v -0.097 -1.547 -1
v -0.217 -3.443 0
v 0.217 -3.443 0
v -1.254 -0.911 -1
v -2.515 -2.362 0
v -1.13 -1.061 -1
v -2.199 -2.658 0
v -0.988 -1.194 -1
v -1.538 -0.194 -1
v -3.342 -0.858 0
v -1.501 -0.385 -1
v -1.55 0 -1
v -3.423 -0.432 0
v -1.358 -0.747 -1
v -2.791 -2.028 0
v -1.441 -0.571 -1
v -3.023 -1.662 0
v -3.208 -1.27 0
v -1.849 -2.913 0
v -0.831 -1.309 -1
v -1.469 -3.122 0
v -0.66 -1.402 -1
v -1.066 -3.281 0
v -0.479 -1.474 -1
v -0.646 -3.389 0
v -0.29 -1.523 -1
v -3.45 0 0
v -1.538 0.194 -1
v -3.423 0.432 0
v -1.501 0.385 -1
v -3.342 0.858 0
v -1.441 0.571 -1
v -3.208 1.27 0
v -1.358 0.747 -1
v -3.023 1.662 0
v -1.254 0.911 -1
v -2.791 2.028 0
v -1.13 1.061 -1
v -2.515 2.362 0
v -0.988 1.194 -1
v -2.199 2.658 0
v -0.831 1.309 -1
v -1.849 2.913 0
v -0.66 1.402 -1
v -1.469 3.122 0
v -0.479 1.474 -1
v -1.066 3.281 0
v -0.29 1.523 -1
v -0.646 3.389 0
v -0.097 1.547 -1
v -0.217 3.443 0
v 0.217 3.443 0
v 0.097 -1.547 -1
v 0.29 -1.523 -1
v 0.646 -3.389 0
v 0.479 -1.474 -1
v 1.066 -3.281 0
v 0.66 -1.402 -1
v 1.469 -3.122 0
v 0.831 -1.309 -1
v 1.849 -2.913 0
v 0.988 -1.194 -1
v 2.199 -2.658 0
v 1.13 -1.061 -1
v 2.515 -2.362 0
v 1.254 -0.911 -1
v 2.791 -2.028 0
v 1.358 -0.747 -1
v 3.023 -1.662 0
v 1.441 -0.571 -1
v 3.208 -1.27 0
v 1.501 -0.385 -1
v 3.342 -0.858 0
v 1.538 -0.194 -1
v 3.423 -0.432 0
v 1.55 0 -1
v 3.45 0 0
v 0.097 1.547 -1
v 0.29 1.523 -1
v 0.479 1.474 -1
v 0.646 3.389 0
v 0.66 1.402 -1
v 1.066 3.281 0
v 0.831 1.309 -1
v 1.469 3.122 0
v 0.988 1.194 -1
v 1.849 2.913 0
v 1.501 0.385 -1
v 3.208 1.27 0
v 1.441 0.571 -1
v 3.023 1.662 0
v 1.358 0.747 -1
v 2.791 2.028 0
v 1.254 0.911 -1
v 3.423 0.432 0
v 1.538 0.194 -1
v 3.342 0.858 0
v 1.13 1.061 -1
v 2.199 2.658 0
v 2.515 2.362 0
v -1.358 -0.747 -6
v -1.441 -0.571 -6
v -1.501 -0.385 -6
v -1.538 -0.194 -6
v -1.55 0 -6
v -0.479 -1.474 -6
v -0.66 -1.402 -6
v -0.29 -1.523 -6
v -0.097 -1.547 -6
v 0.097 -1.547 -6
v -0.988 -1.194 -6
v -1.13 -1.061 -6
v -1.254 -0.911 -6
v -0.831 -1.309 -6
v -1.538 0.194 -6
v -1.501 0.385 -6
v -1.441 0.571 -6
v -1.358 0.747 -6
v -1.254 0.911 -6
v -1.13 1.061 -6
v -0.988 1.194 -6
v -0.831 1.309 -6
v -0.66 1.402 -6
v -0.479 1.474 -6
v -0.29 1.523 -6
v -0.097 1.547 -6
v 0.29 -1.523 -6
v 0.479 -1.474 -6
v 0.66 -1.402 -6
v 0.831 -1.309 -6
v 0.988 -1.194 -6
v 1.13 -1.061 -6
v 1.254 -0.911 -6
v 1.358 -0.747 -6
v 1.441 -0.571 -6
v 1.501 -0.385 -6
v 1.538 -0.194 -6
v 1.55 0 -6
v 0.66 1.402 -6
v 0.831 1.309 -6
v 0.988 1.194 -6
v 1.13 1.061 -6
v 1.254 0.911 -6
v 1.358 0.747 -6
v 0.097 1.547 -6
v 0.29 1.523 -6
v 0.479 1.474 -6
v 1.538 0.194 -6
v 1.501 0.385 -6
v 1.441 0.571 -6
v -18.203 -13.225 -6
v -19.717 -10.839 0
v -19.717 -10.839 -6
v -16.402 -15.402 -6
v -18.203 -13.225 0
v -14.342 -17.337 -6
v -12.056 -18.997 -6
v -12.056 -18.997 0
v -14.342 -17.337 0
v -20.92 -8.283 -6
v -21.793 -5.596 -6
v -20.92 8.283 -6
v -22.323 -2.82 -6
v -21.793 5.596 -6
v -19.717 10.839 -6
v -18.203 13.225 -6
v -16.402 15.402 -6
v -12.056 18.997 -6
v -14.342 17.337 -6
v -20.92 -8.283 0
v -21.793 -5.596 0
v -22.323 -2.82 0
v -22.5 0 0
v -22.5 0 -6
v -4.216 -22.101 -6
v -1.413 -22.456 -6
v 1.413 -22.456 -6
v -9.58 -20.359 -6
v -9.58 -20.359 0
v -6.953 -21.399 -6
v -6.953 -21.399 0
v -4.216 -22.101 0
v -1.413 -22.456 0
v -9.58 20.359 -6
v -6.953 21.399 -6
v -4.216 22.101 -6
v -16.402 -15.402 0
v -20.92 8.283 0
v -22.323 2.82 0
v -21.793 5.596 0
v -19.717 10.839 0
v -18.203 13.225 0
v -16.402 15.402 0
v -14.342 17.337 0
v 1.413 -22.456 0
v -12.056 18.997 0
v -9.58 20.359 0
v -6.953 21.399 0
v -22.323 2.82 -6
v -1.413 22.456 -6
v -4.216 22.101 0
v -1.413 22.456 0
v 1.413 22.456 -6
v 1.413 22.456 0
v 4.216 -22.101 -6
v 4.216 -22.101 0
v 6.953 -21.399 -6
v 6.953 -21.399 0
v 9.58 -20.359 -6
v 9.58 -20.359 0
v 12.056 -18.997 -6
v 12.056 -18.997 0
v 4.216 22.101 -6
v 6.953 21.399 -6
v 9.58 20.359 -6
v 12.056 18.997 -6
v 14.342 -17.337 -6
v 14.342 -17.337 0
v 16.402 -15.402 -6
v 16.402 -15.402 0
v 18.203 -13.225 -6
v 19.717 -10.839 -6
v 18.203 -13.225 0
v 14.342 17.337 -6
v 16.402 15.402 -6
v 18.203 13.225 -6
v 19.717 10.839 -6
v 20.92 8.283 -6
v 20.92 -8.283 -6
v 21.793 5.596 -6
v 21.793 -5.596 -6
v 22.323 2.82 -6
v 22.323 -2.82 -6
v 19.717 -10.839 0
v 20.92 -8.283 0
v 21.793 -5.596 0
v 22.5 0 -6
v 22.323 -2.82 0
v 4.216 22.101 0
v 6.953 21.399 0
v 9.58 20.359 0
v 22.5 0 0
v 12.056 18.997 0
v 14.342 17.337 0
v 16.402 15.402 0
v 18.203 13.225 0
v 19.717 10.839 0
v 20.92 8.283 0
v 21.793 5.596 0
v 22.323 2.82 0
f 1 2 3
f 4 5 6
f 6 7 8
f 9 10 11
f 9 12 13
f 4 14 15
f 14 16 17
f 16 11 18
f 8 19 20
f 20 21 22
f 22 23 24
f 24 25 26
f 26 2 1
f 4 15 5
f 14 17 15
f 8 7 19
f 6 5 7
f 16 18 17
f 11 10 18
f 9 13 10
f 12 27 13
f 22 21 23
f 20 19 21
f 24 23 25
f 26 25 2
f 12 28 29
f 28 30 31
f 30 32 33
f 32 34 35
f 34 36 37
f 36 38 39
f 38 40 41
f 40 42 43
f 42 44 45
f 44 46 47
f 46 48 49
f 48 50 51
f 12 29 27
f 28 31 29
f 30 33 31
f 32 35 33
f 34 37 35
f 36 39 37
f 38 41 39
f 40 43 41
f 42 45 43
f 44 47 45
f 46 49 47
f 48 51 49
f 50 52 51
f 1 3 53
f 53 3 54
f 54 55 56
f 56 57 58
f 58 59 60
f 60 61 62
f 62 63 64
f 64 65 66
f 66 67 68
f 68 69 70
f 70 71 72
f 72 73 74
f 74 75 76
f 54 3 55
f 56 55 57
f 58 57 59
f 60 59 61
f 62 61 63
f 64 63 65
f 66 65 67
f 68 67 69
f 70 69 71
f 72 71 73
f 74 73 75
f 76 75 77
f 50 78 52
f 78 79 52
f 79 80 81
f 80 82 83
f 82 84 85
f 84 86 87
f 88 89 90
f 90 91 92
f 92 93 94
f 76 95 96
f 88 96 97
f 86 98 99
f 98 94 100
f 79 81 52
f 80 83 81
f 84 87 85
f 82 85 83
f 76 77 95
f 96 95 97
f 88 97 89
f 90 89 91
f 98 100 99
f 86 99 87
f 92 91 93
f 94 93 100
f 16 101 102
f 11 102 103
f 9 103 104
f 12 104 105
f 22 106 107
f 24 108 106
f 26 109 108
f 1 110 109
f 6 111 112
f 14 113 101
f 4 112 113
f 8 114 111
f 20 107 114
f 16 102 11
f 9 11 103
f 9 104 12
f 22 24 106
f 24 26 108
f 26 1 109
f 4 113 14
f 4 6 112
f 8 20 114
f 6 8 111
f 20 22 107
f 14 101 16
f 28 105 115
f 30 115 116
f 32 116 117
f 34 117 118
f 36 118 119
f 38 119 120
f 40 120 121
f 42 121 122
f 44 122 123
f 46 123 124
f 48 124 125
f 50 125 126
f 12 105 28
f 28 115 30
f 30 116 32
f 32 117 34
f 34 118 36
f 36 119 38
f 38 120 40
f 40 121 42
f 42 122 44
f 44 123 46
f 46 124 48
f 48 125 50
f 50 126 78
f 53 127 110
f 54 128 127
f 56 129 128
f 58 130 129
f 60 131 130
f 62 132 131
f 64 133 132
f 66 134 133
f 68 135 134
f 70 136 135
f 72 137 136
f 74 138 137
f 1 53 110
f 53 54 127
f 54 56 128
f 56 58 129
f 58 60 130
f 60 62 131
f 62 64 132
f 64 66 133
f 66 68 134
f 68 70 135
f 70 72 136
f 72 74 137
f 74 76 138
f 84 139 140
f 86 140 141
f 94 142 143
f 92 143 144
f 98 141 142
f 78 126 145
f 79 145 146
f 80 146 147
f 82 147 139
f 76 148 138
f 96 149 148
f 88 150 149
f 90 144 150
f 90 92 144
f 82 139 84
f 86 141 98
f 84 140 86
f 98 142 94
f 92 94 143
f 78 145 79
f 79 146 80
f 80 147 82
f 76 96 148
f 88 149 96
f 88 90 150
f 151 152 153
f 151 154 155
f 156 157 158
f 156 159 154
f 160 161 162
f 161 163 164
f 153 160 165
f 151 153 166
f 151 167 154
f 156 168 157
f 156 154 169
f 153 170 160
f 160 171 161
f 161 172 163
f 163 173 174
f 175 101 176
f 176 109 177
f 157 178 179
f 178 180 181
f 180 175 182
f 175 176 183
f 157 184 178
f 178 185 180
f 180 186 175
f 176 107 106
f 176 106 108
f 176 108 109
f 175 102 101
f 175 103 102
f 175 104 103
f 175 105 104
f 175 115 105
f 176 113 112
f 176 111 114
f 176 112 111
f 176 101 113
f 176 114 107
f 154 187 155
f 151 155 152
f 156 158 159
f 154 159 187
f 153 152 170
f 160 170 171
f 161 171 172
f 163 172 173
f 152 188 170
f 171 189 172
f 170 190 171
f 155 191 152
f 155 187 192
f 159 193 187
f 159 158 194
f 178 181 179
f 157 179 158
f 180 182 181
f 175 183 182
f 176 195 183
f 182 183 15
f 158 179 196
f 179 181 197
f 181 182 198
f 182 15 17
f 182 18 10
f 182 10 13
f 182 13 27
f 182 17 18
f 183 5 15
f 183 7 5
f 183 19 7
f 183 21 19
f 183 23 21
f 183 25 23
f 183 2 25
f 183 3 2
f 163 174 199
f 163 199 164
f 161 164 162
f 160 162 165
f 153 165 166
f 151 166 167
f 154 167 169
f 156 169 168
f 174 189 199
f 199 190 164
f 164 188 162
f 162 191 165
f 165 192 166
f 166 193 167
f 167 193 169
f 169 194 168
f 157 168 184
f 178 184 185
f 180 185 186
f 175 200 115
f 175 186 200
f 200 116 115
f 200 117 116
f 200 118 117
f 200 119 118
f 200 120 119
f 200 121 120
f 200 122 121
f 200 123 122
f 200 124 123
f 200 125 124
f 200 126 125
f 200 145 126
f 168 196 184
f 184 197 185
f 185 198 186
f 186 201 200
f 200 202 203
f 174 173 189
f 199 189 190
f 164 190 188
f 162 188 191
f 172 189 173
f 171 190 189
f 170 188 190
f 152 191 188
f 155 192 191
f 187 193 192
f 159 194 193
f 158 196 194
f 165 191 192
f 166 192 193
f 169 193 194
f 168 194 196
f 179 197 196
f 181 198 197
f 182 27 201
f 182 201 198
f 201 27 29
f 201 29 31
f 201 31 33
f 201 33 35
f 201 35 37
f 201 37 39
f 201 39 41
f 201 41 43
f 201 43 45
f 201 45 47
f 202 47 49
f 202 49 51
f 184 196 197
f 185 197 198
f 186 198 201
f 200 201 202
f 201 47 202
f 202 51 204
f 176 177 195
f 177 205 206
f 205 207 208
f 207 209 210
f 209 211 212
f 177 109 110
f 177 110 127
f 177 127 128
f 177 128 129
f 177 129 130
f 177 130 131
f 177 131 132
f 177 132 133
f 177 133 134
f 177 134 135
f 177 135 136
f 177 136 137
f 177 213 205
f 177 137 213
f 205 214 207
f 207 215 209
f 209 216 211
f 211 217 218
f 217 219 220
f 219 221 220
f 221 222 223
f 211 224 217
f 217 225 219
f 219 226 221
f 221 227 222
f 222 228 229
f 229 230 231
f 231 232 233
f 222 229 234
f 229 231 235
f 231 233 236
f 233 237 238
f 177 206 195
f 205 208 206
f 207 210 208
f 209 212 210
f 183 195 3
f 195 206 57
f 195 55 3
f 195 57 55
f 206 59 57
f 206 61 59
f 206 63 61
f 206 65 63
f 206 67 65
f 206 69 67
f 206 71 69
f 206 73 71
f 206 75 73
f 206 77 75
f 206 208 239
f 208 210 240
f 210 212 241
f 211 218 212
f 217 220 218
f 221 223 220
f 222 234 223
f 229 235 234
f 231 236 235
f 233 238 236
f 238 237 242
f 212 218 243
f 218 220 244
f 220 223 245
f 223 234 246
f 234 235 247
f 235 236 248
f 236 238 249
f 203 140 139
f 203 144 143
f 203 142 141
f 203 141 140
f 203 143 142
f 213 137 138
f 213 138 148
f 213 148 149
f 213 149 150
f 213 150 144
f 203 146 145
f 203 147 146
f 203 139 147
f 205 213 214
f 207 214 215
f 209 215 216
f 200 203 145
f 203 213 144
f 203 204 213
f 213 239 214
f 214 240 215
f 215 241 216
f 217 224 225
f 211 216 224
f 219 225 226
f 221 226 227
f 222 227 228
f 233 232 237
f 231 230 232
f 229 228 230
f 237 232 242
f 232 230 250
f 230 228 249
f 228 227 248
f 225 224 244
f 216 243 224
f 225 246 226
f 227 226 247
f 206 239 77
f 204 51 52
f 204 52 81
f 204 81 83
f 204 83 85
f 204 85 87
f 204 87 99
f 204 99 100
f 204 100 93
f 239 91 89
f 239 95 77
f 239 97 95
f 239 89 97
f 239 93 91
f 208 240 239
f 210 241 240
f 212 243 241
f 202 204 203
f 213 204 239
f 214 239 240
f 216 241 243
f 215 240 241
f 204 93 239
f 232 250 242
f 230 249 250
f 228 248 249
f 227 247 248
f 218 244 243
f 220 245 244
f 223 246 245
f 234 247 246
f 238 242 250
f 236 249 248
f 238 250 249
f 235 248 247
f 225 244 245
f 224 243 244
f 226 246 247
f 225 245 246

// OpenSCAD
$fn = 50;

difference() {
	union() {
		translate(v = [0, 0, -6.0]) {
			cylinder(h = 6, r = 22.5);
		}
	}
	union() {
		translate(v = [0, 0, 0]) {
			rotate(a = [0, 0, 0]) {
				difference() {
					union() {
						translate(v = [0, 0, -9.0]) {
							cylinder(h = 9, r = 1.25);
						}
						translate(v = [0, 0, -1.0]) {
							cylinder(h = 1.0, r1 = 1.55, r2 = 3.45);
						}
						translate(v = [0, 0, -9.0]) {
							cylinder(h = 9, r = 1.55);
						}
						translate(v = [0, 0, -9.0]) {
							cylinder(h = 9, r = 1.25);
						}
					}
					union();
				}
			}
		}
	}
}
